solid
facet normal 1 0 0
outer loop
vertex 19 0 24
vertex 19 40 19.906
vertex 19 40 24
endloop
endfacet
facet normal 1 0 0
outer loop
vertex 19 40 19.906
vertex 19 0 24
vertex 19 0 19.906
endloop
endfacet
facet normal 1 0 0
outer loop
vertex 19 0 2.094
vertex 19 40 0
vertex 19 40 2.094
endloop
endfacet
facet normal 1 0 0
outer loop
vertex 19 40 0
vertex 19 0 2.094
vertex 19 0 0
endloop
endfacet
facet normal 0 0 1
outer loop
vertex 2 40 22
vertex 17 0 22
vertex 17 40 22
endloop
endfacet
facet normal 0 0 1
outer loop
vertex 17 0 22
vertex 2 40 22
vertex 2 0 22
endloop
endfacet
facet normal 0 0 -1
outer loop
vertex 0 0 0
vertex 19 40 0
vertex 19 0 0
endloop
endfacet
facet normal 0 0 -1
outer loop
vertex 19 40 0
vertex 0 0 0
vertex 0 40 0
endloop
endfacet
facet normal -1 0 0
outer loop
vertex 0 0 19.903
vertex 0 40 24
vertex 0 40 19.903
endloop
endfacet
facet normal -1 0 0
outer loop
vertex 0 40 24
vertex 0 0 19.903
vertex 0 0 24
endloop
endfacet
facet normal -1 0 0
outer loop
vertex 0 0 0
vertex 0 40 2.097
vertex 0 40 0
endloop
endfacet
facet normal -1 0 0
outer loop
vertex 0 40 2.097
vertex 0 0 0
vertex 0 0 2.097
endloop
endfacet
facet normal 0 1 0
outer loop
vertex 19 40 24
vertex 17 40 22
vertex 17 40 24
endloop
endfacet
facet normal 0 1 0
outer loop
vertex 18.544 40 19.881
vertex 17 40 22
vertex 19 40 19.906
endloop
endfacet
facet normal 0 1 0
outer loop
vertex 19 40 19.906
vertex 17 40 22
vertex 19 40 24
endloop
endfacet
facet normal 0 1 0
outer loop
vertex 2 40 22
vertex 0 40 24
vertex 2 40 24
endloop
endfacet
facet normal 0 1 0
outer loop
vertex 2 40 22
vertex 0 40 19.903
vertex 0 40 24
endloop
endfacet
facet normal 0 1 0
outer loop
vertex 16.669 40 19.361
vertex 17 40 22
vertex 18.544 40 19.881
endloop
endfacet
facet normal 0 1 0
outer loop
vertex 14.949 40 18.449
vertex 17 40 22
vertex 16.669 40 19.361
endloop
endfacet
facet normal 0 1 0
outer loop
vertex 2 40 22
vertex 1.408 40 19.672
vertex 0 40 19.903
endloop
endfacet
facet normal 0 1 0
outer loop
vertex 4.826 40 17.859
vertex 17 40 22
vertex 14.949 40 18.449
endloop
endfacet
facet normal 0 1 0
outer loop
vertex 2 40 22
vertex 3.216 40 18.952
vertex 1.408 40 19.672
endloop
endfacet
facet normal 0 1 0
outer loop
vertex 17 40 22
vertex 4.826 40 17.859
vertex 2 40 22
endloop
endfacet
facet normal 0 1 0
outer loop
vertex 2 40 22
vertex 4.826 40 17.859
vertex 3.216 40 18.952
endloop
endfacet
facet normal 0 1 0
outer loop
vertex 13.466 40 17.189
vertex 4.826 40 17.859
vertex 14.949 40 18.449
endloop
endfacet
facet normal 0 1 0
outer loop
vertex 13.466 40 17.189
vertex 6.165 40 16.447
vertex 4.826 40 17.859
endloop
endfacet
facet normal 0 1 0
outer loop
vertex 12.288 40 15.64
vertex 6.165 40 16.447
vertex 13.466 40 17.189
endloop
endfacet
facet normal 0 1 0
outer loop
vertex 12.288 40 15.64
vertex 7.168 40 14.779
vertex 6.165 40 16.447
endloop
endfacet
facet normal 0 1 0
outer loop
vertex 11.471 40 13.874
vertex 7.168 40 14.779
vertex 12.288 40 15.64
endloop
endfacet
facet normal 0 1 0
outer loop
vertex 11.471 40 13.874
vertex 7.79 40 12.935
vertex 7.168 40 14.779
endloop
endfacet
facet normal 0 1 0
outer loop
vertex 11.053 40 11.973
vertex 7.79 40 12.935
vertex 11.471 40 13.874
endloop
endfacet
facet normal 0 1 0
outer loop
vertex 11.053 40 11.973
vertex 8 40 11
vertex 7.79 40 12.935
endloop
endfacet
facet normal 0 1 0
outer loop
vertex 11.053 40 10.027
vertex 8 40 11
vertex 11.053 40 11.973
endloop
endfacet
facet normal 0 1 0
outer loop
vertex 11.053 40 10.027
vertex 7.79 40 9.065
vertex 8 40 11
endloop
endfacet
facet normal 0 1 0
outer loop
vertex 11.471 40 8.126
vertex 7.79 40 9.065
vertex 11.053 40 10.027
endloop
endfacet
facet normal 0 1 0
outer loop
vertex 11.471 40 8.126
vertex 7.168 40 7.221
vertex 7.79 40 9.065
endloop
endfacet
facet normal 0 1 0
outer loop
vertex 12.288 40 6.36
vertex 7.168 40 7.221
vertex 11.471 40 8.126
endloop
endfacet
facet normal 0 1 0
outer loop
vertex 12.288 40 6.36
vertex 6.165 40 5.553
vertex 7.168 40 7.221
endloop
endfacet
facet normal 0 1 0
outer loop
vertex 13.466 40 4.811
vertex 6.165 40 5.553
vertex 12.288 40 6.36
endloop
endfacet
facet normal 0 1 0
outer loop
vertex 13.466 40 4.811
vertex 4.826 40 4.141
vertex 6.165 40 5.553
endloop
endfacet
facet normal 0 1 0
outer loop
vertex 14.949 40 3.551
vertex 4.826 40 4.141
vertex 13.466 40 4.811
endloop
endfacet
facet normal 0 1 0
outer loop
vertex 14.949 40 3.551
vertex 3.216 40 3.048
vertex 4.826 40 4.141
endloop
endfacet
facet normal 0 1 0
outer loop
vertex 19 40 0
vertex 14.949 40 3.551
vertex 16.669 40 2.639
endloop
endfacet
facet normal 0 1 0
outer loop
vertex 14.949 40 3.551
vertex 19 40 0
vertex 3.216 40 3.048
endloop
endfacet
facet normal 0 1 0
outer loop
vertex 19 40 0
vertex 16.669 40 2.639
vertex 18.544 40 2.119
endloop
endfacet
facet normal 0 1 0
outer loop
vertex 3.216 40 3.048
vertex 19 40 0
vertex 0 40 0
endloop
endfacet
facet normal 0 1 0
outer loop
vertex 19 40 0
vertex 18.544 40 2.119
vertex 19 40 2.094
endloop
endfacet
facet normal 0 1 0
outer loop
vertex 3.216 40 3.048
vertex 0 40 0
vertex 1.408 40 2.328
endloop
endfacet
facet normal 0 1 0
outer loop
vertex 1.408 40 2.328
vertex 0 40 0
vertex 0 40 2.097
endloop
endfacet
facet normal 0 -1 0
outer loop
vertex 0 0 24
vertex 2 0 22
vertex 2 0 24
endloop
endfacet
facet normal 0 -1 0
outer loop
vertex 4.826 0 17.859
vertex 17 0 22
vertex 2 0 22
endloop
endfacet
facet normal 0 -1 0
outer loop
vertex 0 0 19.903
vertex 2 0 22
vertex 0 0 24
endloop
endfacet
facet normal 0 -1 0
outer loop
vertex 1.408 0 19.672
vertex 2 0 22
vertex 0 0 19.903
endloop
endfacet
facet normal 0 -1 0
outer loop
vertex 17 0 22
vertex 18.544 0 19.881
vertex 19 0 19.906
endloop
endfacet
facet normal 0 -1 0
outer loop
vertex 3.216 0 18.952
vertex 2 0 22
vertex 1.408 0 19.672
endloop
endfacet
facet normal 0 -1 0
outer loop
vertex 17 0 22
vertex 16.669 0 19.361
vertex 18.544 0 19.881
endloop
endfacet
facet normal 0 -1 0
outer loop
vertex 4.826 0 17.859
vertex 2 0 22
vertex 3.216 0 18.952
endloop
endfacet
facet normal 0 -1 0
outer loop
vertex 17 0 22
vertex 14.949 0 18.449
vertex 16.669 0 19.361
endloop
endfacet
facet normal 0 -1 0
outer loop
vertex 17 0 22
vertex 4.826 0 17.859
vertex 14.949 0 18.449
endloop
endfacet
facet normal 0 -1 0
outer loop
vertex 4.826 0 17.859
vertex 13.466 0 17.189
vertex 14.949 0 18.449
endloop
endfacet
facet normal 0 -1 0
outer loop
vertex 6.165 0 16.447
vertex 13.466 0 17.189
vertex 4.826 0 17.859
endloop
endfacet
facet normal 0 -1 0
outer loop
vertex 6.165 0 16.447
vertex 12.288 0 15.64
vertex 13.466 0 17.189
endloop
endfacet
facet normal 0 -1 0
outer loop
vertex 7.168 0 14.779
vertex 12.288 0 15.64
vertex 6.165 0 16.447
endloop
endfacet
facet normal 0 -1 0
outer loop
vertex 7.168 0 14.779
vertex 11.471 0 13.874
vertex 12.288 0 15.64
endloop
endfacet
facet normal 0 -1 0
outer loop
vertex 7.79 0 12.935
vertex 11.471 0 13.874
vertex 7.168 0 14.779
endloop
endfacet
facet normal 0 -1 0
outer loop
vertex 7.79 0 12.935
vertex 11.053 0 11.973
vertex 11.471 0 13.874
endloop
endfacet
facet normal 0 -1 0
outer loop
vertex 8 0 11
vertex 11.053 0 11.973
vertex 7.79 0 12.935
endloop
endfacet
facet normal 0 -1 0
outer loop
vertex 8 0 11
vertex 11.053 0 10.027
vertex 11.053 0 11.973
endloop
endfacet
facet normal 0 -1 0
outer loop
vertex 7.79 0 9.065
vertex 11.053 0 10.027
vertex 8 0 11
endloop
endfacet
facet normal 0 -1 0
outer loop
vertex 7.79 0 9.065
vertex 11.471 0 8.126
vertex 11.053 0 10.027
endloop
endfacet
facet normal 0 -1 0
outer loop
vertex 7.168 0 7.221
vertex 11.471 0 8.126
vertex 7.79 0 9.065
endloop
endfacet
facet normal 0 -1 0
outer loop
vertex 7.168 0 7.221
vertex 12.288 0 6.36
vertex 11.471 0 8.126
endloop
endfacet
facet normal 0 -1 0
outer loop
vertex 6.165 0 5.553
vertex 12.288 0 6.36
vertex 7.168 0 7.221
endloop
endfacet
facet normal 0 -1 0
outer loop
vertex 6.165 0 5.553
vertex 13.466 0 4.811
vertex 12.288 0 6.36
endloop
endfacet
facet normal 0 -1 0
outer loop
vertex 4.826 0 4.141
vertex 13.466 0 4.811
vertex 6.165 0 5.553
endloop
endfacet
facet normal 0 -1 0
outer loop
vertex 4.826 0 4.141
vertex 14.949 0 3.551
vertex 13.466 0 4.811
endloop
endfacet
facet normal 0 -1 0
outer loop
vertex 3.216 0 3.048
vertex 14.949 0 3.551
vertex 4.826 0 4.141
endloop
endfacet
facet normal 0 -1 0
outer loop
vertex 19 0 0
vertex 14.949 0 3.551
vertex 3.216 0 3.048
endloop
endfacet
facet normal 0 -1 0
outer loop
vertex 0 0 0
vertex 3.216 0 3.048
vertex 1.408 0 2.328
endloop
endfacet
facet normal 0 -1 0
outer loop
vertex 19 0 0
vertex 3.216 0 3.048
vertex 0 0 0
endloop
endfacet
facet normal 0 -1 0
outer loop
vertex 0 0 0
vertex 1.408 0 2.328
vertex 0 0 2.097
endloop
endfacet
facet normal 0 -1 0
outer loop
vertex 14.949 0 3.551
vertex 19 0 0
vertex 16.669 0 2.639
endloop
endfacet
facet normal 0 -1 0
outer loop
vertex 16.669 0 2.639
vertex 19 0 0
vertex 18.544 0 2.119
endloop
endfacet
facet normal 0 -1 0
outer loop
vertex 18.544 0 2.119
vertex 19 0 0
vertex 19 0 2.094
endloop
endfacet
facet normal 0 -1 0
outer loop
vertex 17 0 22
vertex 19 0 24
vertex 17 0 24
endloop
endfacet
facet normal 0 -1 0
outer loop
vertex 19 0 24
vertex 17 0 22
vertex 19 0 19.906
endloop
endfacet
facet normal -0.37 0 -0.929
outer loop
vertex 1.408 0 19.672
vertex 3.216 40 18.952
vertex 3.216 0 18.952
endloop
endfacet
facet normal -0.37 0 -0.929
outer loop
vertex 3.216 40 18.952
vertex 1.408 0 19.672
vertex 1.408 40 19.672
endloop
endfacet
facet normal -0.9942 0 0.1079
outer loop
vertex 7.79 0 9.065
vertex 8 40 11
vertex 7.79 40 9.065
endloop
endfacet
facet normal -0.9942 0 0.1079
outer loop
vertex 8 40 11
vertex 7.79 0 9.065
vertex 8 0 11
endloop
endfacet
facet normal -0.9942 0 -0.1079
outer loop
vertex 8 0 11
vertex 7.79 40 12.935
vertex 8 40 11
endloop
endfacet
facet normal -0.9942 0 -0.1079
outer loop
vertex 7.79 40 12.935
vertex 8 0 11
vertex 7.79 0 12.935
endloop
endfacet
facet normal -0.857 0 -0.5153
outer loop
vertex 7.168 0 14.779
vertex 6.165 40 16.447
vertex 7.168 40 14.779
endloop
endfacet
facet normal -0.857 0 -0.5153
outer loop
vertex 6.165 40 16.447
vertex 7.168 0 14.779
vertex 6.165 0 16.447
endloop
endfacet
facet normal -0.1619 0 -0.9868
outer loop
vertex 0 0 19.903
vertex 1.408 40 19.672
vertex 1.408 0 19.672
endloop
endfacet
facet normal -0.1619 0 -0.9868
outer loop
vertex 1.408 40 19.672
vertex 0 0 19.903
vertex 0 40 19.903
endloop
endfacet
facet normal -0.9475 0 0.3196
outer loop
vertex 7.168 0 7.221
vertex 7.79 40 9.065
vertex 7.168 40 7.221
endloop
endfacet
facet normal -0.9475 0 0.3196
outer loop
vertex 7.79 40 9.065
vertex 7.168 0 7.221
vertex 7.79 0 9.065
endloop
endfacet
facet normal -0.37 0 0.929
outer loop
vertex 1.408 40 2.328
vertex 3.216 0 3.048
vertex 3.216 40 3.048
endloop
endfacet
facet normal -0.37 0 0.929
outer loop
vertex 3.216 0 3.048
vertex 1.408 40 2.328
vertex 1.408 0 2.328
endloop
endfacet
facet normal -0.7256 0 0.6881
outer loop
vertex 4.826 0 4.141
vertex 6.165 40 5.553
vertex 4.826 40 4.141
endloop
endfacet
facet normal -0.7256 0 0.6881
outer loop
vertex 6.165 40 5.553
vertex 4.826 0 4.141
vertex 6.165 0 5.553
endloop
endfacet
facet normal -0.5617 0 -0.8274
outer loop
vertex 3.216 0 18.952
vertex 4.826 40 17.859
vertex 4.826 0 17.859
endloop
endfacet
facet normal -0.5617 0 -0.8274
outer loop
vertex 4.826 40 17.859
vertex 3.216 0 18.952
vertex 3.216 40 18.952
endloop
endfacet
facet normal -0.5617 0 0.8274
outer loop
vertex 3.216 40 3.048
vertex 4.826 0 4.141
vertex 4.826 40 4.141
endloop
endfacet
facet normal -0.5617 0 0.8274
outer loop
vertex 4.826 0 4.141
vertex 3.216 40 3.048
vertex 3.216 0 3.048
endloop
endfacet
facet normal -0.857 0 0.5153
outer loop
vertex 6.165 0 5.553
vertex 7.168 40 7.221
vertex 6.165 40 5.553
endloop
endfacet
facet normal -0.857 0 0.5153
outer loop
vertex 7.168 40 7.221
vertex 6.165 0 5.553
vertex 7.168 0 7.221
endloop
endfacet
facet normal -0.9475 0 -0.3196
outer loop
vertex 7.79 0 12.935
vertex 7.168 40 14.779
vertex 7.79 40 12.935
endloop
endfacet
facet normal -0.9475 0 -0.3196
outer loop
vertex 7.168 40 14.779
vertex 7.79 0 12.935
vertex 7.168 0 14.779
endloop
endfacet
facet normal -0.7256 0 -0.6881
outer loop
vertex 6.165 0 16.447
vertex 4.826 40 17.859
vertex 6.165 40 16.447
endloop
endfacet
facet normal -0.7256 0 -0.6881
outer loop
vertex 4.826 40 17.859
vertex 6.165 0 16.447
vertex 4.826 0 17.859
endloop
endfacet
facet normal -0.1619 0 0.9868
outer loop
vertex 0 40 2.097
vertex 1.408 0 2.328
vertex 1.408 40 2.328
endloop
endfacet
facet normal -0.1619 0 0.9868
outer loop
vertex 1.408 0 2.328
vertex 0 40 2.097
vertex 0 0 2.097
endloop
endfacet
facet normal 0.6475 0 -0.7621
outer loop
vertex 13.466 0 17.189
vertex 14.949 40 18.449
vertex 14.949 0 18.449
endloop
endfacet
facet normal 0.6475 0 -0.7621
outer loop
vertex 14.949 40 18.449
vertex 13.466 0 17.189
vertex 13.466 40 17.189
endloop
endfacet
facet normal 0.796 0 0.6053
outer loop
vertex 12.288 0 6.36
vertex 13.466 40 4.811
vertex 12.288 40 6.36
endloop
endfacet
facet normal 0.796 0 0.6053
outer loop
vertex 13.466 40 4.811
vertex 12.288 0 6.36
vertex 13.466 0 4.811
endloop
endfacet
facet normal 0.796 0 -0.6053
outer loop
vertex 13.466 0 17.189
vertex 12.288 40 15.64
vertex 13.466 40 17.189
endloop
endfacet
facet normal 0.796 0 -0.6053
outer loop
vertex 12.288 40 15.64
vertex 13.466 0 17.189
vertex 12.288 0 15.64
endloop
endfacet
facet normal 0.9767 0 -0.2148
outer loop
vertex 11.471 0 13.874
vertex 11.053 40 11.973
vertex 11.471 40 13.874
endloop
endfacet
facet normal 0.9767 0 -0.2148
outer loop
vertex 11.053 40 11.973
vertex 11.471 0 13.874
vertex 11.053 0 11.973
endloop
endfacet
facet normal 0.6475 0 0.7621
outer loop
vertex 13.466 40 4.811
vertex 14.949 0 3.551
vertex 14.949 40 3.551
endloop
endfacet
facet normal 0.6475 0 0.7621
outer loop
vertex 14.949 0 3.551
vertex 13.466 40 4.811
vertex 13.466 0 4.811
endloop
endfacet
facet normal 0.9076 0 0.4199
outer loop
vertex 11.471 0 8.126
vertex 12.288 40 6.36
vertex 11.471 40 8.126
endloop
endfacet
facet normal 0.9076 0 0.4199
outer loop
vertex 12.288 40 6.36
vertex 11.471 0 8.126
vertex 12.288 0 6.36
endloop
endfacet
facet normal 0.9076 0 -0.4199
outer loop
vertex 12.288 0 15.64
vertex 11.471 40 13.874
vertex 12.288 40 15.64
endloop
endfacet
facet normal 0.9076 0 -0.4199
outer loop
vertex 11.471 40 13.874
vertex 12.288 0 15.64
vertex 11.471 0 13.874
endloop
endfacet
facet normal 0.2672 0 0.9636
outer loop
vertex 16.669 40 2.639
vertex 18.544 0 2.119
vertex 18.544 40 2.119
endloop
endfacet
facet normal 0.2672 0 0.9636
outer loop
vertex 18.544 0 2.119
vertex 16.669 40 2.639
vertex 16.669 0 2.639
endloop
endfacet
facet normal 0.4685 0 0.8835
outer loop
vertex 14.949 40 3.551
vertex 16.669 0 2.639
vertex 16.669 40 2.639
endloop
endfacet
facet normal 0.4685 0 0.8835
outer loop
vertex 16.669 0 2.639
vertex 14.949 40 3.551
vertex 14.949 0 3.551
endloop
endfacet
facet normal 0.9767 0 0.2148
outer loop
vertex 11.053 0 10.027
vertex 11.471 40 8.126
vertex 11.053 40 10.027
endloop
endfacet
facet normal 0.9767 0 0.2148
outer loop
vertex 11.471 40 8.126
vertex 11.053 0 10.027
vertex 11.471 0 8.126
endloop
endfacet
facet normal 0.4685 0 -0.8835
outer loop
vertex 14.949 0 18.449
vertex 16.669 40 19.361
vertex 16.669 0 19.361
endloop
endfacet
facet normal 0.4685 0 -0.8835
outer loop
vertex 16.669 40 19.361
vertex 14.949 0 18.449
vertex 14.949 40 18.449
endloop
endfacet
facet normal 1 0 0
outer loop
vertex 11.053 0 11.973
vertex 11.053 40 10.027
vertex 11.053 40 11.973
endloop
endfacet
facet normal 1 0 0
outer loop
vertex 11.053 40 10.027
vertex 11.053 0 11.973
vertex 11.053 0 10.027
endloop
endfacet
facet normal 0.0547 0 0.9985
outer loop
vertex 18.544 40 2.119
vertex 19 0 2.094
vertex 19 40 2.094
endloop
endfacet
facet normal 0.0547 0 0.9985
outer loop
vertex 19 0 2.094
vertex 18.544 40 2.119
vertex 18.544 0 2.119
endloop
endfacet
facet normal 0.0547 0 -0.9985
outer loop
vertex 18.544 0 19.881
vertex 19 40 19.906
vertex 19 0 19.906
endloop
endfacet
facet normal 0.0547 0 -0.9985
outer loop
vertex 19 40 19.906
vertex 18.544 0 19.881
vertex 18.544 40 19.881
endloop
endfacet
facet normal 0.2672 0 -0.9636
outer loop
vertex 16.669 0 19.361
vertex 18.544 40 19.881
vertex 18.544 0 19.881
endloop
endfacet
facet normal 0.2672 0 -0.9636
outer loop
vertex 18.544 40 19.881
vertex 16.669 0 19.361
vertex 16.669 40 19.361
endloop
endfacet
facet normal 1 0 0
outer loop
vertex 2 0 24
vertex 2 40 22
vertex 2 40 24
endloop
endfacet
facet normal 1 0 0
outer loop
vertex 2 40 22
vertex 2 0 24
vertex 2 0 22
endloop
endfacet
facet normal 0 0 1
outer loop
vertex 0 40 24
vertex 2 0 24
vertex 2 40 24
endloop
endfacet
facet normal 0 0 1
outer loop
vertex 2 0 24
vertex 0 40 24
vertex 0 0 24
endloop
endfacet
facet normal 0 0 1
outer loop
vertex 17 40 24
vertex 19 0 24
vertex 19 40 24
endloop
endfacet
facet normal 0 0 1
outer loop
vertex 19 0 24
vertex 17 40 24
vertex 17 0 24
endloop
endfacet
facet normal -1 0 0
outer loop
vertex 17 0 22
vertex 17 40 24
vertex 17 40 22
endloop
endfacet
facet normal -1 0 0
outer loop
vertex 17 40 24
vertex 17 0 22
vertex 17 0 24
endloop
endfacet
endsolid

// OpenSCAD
width = 40;
height = 22;
thick = 15;

slot_t = 2;
slot_h = 2;

union() {
    difference() {
        cube([thick+slot_t*2, width, height]);
        translate([-1, 0, height-11]) rotate([-90, 0, 0]) cylinder(width, r=9);
        translate([thick+slot_t*2+1, 0, height-11]) rotate([-90, 0, 0]) cylinder(width, r=9);
    }
    translate([0, 0, height]) cube([slot_t, width, slot_h]);
    translate([thick+slot_t, 0, height]) cube([slot_t, width, slot_h]);
}
